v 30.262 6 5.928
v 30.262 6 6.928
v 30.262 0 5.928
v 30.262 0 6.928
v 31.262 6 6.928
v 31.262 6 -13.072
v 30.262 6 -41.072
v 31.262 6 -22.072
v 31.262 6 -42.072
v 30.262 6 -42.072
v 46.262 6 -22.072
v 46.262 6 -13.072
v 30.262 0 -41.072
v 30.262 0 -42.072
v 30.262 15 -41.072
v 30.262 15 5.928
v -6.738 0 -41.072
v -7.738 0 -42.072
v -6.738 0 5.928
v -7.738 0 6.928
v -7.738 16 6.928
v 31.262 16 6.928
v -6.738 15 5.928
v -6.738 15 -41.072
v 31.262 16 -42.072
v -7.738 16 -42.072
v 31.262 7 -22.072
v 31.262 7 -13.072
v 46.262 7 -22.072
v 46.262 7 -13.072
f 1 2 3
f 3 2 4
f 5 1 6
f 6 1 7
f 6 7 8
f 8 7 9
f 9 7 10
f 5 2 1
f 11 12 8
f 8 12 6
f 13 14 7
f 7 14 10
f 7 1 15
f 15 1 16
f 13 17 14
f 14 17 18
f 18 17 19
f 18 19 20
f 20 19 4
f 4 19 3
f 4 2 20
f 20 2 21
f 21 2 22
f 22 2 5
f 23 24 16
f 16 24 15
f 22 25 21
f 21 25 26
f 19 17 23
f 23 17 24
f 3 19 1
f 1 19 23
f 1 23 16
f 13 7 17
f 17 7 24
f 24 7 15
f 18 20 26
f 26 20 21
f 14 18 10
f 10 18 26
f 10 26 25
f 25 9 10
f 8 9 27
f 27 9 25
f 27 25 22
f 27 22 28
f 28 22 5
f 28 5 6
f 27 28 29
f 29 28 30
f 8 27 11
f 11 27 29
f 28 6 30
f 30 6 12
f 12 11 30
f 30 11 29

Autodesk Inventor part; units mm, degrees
ref_plane "YZ Plane" through (0, 0, 0) normal (1, 0, 0) x (0, 1, 0)
ref_plane "XZ Plane" through (0, 0, 0) normal (0, 1, 0) x (-1, 0, 0)
ref_plane "XY Plane" through (0, 0, 0) normal (0, 0, 1) x (1, 0, 0)
sketch "Náčrt1" plane through (0, 0, 0) normal (0, 1, 0) x (-1, 0, 0)
  line L0 (7.7382, 6.9283) -> (7.7382, -42.0717)
  line L1 (7.7382, -42.0717) -> (-31.2618, -42.0717)
  line L2 (-31.2618, -42.0717) -> (-31.2618, 6.9283)
  line L3 (-31.2618, 6.9283) -> (7.7382, 6.9283)
  line L4 (6.7382, -41.0717) -> (6.7382, 5.9283)
  line L5 (6.7382, 5.9283) -> (-30.2618, 5.9283)
  line L6 (-30.2618, 5.9283) -> (-30.2618, -41.0717)
  line L7 (-30.2618, -41.0717) -> (6.7382, -41.0717)
  point P0 (0, 0)
  dimension "d0" = 49
  dimension "d1" = 39
  dimension "d2" = 1
extrude "Vysunutí1" add sketch "Náčrt1" along normal blind 15
sketch "Náčrt2" plane through (0, 15, 0) normal (0, 1, 0) x (1, 0, 0)
  line L0 (31.2618, -6.9283) -> (31.2618, 42.0717) projected
  line L1 (31.2618, 42.0717) -> (-7.7382, 42.0717) projected
  line L2 (-7.7382, 42.0717) -> (-7.7382, -6.9283) projected
  line L3 (-7.7382, -6.9283) -> (31.2618, -6.9283) projected
  line L4 (-6.7382, 41.0717) -> (30.2618, 41.0717) projected
  line L5 (30.2618, 41.0717) -> (30.2618, -5.9283) projected
  line L6 (30.2618, -5.9283) -> (-6.7382, -5.9283) projected
  line L7 (-6.7382, -5.9283) -> (-6.7382, 41.0717) projected
  line L8 (-7.7382, -6.9283) -> (31.2618, -6.9283)
  line L9 (31.2618, -6.9283) -> (31.2618, 42.0717)
  line L10 (31.2618, 42.0717) -> (-7.7382, 42.0717)
  line L11 (-7.7382, 42.0717) -> (-7.7382, -6.9283)
  point P0 (0, 0)
extrude "Vysunutí2" add sketch "Náčrt2" along normal blind 1 contours L3 L2 L1 L0 | L4 L5 L6 L7
sketch "Náčrt3" plane through (31.2618, 0, 6.9283) normal (1, 0, 0) x (0, 0, -1)
  line L0 (0, 0) -> (49, 0) projected
  line L1 (49, 0) -> (49, 16) projected
  line L2 (0, 16) -> (49, 16) projected
  line L3 (0, 0) -> (0, 16) projected
  line L4 (0, 0) -> (49, 0)
  line L5 (49, 0) -> (49, 6)
  line L6 (49, 6) -> (0, 6)
  line L7 (0, 6) -> (0, 0)
  point P0 (6.9283, 0)
  point P1 (0, 6)
  dimension "d7" = 6
extrude "Vysunutí3" cut sketch "Náčrt3" against normal blind 1 contours L3 L6 L1 L0
sketch "Náčrt4" plane through (31.2618, 16, 6.9283) normal (1, 0, 0) x (0, 0, -1)
  line L0 (0, -10) -> (49, -10) projected
  line L1 (49, -10) -> (49, 0) projected
  line L2 (0, 0) -> (49, 0) projected
  line L3 (0, -10) -> (0, 0) projected
  line L4 (20, -10) -> (29, -10)
  line L5 (29, -10) -> (29, -9)
  line L6 (29, -9) -> (20, -9)
  line L7 (20, -9) -> (20, -10)
  point P0 (6.9283, -16)
  dimension "d10" = 20
  dimension "d11" = 1
  dimension "d12" = 20
extrude "Vysunutí4" add sketch "Náčrt4" along normal blind 15 contours L7 L6 L5 L0
properties part number "Víko senzor"
